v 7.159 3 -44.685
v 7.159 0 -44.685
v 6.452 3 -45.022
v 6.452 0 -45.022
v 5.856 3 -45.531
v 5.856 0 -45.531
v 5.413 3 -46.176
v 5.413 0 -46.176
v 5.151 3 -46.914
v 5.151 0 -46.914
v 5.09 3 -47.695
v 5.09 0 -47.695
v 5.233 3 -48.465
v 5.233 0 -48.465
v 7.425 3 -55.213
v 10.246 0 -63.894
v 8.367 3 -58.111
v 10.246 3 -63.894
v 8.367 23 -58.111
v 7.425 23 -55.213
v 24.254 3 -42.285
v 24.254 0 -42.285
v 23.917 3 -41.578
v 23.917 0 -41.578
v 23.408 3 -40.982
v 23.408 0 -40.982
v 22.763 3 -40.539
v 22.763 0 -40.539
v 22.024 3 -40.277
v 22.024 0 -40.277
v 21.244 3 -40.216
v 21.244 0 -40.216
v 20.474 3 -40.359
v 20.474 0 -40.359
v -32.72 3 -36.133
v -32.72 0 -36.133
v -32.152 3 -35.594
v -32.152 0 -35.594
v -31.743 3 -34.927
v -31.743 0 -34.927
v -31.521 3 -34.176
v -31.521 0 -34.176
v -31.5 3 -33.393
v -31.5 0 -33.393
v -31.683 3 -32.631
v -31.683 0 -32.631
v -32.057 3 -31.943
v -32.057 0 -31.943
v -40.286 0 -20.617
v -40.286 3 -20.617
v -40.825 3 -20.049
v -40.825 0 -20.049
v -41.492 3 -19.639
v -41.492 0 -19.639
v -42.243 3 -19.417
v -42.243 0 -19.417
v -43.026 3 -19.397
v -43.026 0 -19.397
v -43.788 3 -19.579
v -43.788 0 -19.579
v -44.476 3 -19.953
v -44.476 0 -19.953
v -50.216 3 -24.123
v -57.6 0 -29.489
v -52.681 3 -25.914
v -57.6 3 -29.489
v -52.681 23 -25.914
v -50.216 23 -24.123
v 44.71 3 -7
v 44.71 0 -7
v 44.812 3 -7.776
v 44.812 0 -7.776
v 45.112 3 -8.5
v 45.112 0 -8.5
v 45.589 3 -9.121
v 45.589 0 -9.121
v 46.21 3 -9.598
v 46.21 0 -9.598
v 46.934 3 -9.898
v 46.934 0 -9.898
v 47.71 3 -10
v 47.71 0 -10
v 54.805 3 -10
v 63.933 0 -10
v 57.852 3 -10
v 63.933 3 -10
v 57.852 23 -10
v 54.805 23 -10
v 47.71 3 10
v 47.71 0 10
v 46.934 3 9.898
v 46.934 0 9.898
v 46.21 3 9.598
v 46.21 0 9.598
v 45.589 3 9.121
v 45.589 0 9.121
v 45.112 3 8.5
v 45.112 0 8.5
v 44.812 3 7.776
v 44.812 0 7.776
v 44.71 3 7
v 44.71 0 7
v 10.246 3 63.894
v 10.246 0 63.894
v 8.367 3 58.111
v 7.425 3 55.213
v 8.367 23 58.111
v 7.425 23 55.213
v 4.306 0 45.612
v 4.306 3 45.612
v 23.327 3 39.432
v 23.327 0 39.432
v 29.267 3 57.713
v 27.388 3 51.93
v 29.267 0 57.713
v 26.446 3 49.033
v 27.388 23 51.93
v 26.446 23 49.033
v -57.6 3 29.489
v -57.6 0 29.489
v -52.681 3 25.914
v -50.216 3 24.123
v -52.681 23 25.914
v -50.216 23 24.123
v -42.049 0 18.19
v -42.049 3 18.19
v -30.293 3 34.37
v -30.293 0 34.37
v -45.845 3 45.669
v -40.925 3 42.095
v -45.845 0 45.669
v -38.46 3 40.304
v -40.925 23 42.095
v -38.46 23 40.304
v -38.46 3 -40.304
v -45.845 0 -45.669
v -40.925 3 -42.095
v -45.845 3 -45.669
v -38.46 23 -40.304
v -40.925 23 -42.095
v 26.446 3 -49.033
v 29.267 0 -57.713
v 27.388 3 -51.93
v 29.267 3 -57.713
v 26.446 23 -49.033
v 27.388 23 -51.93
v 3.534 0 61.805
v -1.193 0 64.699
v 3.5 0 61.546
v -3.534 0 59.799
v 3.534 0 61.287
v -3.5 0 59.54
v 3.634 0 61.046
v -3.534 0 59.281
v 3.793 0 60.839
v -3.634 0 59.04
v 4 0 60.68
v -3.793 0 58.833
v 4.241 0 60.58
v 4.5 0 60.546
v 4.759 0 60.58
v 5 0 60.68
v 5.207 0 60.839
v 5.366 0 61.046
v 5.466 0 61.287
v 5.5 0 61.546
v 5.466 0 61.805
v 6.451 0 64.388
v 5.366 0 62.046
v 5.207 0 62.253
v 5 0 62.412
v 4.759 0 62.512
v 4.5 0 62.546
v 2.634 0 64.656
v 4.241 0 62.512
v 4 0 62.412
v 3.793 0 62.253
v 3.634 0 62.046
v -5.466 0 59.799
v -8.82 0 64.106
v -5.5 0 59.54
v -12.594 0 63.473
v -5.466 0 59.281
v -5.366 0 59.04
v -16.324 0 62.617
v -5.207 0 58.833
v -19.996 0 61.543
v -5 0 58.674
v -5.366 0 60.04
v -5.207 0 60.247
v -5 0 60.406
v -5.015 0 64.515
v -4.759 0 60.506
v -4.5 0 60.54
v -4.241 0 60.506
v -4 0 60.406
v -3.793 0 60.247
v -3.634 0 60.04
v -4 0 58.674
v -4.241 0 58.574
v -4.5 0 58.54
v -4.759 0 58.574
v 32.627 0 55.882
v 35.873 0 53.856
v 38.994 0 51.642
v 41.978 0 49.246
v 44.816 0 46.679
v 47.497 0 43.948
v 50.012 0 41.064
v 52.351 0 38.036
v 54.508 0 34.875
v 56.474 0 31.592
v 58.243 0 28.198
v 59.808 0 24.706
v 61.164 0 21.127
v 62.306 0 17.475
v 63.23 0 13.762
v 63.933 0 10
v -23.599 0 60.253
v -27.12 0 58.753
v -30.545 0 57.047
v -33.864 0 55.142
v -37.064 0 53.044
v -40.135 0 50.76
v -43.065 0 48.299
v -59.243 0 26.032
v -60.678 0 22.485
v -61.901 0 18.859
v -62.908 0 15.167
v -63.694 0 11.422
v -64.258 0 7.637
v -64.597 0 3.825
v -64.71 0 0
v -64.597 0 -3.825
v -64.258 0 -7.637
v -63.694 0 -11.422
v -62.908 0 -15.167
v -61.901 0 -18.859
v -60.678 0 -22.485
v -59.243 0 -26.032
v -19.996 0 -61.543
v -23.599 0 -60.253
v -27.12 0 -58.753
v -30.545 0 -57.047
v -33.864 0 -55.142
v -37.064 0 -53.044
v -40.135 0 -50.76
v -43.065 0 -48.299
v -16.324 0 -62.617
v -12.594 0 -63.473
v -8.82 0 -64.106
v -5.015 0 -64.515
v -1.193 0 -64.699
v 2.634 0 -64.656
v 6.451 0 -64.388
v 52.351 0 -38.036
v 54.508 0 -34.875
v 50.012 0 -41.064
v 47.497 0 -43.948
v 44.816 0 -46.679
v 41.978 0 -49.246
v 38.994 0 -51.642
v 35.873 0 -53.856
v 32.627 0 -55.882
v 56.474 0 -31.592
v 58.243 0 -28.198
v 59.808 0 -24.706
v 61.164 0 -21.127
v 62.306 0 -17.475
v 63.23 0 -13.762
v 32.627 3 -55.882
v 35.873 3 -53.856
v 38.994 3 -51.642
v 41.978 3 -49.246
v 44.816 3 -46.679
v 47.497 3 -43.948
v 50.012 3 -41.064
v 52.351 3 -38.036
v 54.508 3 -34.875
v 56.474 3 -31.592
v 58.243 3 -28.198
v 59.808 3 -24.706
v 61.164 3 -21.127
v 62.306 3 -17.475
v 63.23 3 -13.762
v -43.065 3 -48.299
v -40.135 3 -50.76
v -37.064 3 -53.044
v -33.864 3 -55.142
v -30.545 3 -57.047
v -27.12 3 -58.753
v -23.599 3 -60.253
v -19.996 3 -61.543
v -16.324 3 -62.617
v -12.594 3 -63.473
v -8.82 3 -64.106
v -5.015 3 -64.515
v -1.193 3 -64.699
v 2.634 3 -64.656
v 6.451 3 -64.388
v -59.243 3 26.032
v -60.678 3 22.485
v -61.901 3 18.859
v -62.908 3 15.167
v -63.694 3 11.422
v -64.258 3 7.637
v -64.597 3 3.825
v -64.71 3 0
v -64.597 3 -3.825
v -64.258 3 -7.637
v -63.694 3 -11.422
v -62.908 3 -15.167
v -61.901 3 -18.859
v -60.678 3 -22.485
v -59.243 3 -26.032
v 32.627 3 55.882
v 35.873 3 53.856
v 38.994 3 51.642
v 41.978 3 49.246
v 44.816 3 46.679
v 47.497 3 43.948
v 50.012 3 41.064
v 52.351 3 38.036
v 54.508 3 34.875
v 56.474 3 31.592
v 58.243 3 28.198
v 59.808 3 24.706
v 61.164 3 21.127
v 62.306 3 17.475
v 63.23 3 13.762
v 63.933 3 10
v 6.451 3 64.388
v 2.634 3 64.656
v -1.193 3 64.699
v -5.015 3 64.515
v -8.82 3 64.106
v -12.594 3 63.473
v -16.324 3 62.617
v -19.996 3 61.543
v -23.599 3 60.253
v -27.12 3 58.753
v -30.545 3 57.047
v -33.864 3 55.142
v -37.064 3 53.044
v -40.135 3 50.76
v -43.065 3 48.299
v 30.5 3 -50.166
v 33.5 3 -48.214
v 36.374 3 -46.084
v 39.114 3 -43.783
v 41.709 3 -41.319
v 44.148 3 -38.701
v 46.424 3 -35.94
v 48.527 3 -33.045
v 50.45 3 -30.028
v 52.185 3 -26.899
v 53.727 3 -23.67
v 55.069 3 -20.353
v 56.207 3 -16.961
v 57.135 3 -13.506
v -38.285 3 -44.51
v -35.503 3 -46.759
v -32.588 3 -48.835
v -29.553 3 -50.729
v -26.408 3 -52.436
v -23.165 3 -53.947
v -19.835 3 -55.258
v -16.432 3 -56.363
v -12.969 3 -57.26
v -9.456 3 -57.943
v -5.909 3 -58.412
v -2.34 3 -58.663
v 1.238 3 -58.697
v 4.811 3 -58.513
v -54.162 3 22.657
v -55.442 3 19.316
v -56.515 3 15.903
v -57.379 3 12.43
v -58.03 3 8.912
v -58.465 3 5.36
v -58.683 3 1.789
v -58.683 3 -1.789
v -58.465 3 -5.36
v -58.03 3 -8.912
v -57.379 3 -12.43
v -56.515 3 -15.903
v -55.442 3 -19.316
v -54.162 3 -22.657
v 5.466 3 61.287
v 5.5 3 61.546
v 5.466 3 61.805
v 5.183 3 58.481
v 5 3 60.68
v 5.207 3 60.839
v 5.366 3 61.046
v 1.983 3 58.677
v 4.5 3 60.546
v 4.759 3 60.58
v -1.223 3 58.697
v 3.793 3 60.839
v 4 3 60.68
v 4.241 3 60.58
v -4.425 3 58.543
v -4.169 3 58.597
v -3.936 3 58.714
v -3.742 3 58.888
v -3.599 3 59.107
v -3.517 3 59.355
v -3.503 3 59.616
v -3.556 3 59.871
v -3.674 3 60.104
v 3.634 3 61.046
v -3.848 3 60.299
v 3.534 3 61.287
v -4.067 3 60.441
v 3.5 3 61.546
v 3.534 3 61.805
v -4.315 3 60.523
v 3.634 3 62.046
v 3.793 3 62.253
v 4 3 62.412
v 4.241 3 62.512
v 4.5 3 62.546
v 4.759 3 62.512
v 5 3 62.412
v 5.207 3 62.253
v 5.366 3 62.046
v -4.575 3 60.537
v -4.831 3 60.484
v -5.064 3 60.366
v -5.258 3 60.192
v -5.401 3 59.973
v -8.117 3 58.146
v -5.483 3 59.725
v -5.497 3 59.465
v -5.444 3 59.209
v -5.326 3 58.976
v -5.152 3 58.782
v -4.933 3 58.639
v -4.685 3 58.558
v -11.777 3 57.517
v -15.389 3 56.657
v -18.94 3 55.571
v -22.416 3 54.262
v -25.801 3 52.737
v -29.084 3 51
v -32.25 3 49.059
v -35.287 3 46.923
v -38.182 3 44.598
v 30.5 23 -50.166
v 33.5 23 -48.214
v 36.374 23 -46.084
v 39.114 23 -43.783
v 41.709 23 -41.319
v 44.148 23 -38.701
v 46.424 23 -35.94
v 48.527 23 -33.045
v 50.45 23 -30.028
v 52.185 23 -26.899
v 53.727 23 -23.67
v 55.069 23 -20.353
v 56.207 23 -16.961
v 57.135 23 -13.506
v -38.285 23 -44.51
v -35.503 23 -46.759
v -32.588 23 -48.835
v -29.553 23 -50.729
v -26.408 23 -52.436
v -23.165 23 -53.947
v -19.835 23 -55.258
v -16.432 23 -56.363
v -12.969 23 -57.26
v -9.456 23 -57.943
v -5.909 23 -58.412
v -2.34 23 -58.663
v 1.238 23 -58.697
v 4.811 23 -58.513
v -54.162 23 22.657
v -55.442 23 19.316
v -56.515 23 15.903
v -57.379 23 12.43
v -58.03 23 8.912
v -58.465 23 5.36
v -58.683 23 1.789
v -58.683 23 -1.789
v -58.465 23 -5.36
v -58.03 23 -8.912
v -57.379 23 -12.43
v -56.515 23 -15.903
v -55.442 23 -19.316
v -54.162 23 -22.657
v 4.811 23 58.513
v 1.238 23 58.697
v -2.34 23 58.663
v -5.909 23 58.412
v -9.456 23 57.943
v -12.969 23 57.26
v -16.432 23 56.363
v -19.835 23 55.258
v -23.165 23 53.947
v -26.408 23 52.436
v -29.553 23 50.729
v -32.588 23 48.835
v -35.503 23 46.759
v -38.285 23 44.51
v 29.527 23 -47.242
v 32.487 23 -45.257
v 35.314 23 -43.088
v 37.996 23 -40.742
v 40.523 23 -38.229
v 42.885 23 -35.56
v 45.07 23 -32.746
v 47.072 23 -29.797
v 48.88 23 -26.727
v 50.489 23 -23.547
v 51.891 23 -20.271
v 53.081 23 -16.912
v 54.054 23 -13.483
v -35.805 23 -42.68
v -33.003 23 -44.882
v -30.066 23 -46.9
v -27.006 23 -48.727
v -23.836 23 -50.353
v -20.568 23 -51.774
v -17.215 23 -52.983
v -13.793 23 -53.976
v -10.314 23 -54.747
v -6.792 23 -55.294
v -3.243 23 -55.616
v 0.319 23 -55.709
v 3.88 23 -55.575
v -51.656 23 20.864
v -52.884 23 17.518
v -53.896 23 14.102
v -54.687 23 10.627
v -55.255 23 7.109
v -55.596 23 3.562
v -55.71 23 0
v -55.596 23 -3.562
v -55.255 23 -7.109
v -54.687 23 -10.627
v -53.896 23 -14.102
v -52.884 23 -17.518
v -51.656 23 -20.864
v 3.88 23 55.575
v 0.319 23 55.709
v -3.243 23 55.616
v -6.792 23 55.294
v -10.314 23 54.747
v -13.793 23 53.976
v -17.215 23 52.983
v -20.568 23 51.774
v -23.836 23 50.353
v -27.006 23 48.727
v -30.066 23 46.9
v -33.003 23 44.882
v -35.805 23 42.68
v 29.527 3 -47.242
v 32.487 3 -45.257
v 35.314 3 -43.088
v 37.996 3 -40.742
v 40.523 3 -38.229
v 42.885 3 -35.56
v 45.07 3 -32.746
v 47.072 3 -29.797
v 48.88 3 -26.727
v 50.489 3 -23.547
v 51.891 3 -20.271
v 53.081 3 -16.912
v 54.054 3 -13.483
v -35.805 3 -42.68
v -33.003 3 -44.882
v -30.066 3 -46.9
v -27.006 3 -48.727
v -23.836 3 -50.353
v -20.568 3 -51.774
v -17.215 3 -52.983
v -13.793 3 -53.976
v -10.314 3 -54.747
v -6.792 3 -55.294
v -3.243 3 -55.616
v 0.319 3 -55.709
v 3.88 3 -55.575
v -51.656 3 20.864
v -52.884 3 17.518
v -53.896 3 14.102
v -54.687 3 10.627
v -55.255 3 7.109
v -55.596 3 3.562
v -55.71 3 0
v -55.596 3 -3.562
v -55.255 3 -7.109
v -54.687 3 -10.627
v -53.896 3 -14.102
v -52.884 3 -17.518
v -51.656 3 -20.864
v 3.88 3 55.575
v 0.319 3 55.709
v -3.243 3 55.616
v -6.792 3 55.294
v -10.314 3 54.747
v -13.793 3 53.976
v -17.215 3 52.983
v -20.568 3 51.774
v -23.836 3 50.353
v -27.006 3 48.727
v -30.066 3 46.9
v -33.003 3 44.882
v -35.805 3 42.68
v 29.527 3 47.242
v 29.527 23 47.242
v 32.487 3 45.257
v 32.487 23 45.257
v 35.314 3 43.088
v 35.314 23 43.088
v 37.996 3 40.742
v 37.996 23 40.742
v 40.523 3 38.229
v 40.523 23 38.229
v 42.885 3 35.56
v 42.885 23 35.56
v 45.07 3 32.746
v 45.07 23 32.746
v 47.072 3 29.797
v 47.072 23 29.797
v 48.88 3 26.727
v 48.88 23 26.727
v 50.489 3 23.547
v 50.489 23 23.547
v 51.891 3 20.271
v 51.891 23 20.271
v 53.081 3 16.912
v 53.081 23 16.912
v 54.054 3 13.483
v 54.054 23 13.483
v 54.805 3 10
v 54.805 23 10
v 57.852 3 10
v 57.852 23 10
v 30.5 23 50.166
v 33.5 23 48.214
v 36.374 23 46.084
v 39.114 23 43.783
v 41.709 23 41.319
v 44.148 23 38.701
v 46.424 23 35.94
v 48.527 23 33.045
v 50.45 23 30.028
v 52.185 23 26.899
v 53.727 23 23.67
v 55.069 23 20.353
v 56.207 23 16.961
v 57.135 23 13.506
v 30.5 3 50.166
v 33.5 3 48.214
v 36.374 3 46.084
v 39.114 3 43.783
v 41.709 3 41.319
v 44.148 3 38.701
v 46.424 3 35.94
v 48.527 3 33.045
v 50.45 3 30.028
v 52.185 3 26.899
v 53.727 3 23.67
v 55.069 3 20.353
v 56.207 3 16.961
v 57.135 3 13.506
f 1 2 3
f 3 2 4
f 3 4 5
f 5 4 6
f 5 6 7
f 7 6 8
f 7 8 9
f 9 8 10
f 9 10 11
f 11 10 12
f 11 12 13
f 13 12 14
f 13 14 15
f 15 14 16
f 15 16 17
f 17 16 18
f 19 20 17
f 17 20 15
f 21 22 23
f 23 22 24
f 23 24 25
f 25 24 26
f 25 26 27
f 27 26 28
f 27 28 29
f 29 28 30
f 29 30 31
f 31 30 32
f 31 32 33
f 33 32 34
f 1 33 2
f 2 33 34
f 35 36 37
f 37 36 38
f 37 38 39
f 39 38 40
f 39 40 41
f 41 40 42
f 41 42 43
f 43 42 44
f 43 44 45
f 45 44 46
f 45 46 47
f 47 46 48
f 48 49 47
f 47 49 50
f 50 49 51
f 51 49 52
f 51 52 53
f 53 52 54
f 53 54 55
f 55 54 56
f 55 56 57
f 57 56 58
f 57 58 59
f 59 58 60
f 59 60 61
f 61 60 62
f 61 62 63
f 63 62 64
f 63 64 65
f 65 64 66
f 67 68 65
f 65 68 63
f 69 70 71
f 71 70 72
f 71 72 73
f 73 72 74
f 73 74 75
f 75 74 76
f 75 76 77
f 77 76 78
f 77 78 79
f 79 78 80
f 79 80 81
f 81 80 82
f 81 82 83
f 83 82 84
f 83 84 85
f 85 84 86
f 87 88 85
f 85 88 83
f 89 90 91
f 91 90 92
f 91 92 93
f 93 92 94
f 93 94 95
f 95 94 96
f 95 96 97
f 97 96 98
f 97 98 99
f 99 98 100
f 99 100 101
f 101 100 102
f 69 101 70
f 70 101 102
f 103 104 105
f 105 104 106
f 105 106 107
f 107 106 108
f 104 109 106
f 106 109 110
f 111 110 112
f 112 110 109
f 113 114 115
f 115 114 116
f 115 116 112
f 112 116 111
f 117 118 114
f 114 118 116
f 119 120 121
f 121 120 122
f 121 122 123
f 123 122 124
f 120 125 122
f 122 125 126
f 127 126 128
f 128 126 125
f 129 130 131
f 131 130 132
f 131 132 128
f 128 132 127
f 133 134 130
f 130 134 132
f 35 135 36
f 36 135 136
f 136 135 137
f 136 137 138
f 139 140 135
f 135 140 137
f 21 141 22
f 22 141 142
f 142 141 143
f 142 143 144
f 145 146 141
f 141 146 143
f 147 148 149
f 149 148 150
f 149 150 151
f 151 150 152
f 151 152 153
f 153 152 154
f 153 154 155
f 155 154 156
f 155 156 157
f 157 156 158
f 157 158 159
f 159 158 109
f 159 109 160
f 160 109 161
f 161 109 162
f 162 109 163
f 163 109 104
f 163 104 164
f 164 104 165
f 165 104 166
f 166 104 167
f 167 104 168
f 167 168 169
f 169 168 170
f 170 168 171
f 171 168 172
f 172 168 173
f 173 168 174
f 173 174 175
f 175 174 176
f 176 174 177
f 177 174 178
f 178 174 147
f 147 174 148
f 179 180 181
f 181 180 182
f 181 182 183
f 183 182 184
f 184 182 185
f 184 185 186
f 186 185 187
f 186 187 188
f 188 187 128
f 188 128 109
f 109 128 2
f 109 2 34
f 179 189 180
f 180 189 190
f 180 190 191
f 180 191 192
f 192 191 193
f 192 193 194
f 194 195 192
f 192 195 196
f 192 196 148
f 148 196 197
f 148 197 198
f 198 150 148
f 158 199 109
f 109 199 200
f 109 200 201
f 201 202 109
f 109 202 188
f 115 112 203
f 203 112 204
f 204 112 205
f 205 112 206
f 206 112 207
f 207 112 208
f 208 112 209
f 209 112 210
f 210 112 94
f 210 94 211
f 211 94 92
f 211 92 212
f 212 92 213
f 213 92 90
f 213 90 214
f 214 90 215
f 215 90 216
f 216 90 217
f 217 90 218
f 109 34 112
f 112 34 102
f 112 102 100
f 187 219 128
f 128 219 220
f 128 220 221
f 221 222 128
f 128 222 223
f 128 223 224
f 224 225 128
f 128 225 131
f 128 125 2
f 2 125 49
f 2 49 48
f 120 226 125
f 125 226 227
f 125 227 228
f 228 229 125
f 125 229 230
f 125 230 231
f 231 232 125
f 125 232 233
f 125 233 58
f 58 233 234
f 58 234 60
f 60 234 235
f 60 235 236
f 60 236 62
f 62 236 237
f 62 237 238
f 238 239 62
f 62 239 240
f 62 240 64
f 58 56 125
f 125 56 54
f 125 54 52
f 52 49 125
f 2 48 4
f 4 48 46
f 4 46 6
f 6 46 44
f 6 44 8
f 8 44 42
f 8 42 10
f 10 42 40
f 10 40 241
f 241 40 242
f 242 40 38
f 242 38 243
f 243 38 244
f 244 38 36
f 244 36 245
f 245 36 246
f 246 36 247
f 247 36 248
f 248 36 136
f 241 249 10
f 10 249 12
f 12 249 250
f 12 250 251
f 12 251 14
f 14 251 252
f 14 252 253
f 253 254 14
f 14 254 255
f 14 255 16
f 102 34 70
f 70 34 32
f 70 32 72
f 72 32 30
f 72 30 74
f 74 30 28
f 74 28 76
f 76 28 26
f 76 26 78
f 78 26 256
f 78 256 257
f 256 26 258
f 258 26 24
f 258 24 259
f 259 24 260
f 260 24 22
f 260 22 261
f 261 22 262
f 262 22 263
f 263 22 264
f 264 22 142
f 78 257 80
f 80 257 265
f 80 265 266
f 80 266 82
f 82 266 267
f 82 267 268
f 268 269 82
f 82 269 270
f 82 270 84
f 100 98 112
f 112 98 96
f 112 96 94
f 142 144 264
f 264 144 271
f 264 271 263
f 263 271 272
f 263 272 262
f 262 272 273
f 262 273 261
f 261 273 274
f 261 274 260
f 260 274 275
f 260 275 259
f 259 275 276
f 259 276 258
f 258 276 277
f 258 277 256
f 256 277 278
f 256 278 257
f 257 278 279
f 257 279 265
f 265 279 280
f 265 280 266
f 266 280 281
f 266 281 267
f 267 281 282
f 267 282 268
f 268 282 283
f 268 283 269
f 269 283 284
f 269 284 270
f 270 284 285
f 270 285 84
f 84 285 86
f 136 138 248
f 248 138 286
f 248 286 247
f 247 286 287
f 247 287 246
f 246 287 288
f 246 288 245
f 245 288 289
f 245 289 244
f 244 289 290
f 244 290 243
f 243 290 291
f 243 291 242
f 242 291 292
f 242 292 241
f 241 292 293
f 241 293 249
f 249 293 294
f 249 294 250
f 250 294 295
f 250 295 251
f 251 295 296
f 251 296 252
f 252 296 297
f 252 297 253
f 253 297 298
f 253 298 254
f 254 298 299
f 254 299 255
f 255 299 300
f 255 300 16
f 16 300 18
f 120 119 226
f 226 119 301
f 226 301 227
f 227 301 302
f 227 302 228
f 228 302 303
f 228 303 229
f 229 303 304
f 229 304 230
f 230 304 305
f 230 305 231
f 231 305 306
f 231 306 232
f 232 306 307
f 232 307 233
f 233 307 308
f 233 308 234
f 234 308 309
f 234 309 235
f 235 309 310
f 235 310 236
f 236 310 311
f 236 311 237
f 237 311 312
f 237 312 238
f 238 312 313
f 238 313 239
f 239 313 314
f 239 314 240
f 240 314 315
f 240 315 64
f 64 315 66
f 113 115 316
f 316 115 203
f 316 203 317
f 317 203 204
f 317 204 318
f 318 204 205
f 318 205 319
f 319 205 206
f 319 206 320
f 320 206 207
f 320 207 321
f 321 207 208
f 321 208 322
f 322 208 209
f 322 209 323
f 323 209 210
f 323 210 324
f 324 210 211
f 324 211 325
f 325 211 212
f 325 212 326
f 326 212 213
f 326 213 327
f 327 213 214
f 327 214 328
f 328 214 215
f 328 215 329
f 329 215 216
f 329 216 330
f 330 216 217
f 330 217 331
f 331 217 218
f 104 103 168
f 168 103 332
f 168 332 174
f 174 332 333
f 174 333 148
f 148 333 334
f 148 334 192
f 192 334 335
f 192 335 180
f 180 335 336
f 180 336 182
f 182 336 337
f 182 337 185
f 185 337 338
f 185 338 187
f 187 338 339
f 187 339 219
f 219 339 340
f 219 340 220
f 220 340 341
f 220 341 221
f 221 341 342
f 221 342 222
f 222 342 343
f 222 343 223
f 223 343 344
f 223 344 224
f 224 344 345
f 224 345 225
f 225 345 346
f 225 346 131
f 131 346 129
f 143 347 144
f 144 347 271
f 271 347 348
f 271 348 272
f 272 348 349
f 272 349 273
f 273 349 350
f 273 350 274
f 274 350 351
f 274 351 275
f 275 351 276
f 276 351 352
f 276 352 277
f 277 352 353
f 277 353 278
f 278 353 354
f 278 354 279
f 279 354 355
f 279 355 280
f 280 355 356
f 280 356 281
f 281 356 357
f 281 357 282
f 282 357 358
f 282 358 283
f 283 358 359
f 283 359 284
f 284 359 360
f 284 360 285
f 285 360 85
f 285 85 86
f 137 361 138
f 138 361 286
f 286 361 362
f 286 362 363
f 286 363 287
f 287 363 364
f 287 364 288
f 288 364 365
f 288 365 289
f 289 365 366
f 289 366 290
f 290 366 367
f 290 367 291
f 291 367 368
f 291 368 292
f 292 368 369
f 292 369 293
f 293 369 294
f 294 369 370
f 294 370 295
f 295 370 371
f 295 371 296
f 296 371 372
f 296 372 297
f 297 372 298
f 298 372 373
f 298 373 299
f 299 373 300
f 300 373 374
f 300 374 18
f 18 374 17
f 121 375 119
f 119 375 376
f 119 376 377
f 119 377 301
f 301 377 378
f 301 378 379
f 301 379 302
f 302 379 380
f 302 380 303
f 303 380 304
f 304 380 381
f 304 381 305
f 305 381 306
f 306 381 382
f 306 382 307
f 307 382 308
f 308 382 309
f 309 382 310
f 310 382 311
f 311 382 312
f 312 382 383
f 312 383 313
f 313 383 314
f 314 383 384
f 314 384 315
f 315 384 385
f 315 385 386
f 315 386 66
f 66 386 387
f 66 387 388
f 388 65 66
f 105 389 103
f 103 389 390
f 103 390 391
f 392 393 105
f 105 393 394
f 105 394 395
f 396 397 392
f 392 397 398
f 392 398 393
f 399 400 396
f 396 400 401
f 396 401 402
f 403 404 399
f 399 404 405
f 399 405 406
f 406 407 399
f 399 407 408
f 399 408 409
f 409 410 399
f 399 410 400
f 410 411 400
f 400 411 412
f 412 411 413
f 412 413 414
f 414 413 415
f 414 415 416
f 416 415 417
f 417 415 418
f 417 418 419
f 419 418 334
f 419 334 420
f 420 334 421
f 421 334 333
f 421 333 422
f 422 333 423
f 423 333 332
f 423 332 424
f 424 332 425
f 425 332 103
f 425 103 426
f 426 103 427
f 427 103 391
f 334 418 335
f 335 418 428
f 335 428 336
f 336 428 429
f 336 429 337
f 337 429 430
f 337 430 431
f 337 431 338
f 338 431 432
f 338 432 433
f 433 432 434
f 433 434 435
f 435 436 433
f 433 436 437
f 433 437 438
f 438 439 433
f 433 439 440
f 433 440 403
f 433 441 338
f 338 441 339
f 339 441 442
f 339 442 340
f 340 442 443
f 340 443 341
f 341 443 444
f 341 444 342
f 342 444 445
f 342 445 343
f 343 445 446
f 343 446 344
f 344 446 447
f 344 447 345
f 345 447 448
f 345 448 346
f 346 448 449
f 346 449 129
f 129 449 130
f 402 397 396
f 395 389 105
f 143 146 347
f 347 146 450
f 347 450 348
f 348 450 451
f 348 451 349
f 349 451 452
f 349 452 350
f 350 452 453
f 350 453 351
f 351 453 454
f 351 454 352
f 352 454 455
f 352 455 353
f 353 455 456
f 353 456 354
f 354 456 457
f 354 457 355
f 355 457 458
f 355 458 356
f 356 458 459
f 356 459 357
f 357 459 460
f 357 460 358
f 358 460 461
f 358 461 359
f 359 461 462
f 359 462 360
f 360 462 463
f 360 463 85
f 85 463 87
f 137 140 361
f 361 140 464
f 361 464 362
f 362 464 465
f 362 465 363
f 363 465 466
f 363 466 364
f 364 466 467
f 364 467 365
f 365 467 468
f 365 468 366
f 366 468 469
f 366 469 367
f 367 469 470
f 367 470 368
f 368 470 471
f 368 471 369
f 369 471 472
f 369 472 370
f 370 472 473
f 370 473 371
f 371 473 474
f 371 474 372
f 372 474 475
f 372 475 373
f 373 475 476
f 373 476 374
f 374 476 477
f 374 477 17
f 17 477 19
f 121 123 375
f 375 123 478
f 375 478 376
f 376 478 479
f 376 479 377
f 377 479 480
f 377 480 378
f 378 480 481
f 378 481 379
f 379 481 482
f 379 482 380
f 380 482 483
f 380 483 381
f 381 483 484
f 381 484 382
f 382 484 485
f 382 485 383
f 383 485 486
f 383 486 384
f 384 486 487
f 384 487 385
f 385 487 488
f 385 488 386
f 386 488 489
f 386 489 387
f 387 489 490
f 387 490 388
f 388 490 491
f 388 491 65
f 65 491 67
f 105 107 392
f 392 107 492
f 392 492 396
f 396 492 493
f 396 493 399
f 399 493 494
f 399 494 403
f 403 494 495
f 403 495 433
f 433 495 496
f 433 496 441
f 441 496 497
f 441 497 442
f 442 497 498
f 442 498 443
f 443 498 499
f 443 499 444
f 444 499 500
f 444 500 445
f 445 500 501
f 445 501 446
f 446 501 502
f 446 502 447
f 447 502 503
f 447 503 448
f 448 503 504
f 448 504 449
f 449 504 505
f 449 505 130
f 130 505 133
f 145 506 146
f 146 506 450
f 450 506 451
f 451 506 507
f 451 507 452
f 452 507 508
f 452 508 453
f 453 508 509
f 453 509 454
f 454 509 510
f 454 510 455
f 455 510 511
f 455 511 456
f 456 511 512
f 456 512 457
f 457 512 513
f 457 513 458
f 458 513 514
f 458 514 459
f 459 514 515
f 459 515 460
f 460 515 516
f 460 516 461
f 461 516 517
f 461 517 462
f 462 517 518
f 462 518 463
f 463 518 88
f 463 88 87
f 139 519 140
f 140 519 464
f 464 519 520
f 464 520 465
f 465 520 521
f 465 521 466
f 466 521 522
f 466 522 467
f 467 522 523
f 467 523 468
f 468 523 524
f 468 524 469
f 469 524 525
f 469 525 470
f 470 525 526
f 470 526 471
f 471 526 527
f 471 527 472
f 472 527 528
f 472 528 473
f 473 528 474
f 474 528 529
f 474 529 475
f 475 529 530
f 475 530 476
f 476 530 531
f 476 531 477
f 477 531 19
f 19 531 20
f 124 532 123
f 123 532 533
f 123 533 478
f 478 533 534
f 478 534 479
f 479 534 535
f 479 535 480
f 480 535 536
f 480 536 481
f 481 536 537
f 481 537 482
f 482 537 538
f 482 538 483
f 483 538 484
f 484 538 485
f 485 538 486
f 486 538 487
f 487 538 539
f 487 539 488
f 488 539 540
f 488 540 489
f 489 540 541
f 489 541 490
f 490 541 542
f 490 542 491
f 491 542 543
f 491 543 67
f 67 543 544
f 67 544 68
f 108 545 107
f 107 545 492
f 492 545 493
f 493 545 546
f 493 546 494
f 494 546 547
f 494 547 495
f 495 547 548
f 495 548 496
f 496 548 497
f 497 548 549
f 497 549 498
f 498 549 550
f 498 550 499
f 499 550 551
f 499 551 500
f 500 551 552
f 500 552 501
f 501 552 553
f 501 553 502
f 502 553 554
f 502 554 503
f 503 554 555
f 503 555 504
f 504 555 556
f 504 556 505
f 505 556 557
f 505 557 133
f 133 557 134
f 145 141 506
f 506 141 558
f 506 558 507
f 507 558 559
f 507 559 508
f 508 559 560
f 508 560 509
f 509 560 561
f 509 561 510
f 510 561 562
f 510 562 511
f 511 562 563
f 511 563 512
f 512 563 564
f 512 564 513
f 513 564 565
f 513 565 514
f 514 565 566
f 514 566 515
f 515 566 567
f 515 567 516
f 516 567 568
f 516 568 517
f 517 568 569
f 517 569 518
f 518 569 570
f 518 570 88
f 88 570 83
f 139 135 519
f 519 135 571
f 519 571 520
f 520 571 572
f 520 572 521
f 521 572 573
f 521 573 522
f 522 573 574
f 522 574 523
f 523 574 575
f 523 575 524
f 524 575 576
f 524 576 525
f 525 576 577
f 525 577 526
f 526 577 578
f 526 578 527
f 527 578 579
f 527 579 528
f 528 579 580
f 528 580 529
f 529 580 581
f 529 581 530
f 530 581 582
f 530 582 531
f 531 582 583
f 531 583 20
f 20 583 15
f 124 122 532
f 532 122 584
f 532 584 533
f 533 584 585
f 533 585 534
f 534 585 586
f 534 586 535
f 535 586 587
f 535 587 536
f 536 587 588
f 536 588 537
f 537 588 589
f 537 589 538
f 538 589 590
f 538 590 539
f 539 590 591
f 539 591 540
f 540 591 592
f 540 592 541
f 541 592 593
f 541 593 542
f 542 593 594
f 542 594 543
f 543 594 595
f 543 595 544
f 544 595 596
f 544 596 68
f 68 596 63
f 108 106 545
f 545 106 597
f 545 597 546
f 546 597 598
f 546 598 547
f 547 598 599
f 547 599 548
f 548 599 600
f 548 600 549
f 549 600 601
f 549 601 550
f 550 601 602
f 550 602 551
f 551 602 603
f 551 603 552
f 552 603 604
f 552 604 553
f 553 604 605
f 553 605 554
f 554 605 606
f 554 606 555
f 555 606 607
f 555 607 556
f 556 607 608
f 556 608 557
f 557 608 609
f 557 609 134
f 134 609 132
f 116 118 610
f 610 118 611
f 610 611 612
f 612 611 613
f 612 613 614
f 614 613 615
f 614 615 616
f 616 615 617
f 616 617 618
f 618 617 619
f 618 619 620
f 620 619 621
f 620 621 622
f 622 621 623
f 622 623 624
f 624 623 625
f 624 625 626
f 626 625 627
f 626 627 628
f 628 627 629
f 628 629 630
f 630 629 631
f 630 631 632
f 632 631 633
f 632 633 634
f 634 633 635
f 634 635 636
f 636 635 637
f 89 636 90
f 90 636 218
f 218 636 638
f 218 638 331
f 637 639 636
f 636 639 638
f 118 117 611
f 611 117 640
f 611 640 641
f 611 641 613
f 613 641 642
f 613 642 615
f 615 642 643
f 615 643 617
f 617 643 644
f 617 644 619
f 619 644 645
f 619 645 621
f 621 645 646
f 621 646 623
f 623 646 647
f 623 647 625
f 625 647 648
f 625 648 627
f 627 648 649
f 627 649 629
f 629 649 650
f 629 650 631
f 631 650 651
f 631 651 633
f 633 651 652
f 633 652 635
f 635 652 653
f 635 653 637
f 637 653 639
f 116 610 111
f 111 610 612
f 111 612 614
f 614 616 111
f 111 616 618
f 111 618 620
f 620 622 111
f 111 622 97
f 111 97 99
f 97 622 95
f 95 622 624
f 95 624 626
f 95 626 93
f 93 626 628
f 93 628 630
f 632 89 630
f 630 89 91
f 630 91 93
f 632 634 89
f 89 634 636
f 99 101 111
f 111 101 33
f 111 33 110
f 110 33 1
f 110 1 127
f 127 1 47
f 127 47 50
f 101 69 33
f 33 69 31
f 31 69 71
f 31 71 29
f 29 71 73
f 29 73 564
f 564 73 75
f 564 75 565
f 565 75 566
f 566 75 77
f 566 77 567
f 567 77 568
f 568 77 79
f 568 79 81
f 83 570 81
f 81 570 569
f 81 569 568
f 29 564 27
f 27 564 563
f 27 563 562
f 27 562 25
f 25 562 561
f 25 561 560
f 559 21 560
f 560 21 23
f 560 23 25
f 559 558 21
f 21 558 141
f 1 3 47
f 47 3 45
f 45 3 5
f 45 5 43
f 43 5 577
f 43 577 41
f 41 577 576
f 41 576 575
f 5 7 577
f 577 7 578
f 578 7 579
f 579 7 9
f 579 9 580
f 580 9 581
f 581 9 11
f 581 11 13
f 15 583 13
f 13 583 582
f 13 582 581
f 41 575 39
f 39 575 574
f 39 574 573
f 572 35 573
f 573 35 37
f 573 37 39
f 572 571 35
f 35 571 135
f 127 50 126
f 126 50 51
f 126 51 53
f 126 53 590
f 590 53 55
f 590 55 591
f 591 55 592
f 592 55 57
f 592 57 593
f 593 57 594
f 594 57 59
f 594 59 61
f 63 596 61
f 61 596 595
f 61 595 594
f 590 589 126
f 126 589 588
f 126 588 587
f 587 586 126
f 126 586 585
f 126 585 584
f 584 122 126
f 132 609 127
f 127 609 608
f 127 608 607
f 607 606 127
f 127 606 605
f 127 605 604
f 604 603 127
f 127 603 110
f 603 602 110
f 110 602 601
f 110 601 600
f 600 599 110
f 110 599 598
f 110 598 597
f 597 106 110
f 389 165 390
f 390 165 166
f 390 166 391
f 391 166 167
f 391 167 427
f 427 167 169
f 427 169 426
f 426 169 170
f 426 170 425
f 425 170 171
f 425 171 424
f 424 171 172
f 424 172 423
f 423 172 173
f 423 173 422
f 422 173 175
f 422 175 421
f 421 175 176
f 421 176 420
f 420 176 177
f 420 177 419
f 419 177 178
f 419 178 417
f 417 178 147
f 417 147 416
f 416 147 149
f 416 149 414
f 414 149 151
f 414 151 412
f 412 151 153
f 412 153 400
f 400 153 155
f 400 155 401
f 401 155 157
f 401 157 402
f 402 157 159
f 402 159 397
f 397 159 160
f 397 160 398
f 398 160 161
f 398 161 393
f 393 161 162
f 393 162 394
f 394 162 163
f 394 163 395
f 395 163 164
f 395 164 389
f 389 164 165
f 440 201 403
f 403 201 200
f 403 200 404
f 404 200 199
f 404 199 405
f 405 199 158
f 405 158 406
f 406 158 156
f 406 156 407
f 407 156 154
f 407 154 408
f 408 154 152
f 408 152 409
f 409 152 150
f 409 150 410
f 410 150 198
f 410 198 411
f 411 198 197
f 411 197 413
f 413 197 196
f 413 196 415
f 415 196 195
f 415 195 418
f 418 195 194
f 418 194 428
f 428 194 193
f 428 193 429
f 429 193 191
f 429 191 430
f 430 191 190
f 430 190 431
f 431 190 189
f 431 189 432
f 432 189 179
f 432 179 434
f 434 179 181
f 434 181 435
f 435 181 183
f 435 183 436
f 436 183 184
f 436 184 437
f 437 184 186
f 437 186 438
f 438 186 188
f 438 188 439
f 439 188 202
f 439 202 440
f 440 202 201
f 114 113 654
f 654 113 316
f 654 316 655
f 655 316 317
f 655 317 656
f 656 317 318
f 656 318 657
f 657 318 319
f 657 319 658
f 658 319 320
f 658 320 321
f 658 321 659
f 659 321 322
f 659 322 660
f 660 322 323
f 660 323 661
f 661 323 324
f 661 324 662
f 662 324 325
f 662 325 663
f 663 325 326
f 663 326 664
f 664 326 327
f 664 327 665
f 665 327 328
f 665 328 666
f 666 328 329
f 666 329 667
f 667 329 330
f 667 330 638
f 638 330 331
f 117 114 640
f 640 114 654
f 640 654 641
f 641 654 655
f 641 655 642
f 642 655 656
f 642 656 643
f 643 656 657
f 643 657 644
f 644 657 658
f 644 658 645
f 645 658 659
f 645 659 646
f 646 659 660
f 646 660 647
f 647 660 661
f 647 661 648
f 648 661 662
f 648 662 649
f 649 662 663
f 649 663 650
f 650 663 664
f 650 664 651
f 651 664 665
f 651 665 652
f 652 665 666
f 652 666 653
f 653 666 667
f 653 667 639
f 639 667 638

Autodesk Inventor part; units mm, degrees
ref_plane "YZ Plane" through (0, 0, 0) normal (1, 0, 0) x (0, 1, 0)
ref_plane "XZ Plane" through (0, 0, 0) normal (0, 1, 0) x (-1, 0, 0)
ref_plane "XY Plane" through (0, 0, 0) normal (0, 0, 1) x (1, 0, 0)
sketch "Sketch1" plane through (0, 0, 0) normal (0, 1, 0) x (-1, 0, 0)
  circle A0 centre (0, 0) radius 58.71
  circle A1 centre (0, 0) radius 55.71
  circle A2 centre (0, 0) radius 64.71
  dimension "d0" = 117.42
  dimension "d1" = 3
  dimension "d2" = 6
extrude "Extrusion1" add sketch "Sketch1" along normal blind 23 contours A0
extrude "Extrusion2" add sketch "Sketch1" along normal blind 3 contours A2
sketch "Sketch2" plane through (0, 3, 0) normal (0, 1, 0) x (1, 0, 0)
  circle A0 centre (-4.5, -59.5402) radius 1
  circle A1 centre (0, 0) radius 58.71 projected
  circle A2 centre (0, 0) radius 60.71 construction
  circle A3 centre (4.5, -61.5457) radius 1
  dimension "d7" = 2
  dimension "d8" = 4.5
  dimension "d9" = 4.5
extrude "Extrusion3" cut sketch "Sketch2" against normal up to surface (3 mm away) contours A0 | A3
extrude "Extrusion4" add sketch "Sketch1" along normal blind 3 contours A1
sketch "Sketch3" plane through (0, 0, 0) normal (0, -1, 0) x (1, 0, 0)
  line L0 (64.71, -10) -> (44.71, -10)
  line L1 (44.71, -10) -> (44.71, 10)
  line L2 (44.71, 10) -> (64.71, 10)
  line L3 (64.71, 10) -> (64.71, -10)
  circle A0 centre (0, 0) radius 64.71 projected
  point P0 (64.71, 0)
  point P1 (5.4987, 96.2431)
  point P2 (3.5009, 96.3364)
  dimension "d14" = 20
  dimension "d15" = 20
extrude "Extrusion5" cut sketch "Sketch3" against normal up to surface (23 mm away) contours L0 A0 L3 | L0 L1 L2 A0 | A0 L2 L3 picked at (51.3767, 0)
pattern_circular "Circular Pattern1" count 5 over 360 about axis through (0, -10, 0) along (0, 1, 0) of "Extrusion5"
fillet "Fillet1" radius 3 6 edges at (44.71, 1.5, 10) (44.71, 1.5, -10) (-42.049, 1.5, -18.1897) (-30.2933, 1.5, -34.37) (23.3267, 1.5, -39.4316) (4.3056, 1.5, -45.6119)
properties part number "122mm-CoilForm_3DPrint"
